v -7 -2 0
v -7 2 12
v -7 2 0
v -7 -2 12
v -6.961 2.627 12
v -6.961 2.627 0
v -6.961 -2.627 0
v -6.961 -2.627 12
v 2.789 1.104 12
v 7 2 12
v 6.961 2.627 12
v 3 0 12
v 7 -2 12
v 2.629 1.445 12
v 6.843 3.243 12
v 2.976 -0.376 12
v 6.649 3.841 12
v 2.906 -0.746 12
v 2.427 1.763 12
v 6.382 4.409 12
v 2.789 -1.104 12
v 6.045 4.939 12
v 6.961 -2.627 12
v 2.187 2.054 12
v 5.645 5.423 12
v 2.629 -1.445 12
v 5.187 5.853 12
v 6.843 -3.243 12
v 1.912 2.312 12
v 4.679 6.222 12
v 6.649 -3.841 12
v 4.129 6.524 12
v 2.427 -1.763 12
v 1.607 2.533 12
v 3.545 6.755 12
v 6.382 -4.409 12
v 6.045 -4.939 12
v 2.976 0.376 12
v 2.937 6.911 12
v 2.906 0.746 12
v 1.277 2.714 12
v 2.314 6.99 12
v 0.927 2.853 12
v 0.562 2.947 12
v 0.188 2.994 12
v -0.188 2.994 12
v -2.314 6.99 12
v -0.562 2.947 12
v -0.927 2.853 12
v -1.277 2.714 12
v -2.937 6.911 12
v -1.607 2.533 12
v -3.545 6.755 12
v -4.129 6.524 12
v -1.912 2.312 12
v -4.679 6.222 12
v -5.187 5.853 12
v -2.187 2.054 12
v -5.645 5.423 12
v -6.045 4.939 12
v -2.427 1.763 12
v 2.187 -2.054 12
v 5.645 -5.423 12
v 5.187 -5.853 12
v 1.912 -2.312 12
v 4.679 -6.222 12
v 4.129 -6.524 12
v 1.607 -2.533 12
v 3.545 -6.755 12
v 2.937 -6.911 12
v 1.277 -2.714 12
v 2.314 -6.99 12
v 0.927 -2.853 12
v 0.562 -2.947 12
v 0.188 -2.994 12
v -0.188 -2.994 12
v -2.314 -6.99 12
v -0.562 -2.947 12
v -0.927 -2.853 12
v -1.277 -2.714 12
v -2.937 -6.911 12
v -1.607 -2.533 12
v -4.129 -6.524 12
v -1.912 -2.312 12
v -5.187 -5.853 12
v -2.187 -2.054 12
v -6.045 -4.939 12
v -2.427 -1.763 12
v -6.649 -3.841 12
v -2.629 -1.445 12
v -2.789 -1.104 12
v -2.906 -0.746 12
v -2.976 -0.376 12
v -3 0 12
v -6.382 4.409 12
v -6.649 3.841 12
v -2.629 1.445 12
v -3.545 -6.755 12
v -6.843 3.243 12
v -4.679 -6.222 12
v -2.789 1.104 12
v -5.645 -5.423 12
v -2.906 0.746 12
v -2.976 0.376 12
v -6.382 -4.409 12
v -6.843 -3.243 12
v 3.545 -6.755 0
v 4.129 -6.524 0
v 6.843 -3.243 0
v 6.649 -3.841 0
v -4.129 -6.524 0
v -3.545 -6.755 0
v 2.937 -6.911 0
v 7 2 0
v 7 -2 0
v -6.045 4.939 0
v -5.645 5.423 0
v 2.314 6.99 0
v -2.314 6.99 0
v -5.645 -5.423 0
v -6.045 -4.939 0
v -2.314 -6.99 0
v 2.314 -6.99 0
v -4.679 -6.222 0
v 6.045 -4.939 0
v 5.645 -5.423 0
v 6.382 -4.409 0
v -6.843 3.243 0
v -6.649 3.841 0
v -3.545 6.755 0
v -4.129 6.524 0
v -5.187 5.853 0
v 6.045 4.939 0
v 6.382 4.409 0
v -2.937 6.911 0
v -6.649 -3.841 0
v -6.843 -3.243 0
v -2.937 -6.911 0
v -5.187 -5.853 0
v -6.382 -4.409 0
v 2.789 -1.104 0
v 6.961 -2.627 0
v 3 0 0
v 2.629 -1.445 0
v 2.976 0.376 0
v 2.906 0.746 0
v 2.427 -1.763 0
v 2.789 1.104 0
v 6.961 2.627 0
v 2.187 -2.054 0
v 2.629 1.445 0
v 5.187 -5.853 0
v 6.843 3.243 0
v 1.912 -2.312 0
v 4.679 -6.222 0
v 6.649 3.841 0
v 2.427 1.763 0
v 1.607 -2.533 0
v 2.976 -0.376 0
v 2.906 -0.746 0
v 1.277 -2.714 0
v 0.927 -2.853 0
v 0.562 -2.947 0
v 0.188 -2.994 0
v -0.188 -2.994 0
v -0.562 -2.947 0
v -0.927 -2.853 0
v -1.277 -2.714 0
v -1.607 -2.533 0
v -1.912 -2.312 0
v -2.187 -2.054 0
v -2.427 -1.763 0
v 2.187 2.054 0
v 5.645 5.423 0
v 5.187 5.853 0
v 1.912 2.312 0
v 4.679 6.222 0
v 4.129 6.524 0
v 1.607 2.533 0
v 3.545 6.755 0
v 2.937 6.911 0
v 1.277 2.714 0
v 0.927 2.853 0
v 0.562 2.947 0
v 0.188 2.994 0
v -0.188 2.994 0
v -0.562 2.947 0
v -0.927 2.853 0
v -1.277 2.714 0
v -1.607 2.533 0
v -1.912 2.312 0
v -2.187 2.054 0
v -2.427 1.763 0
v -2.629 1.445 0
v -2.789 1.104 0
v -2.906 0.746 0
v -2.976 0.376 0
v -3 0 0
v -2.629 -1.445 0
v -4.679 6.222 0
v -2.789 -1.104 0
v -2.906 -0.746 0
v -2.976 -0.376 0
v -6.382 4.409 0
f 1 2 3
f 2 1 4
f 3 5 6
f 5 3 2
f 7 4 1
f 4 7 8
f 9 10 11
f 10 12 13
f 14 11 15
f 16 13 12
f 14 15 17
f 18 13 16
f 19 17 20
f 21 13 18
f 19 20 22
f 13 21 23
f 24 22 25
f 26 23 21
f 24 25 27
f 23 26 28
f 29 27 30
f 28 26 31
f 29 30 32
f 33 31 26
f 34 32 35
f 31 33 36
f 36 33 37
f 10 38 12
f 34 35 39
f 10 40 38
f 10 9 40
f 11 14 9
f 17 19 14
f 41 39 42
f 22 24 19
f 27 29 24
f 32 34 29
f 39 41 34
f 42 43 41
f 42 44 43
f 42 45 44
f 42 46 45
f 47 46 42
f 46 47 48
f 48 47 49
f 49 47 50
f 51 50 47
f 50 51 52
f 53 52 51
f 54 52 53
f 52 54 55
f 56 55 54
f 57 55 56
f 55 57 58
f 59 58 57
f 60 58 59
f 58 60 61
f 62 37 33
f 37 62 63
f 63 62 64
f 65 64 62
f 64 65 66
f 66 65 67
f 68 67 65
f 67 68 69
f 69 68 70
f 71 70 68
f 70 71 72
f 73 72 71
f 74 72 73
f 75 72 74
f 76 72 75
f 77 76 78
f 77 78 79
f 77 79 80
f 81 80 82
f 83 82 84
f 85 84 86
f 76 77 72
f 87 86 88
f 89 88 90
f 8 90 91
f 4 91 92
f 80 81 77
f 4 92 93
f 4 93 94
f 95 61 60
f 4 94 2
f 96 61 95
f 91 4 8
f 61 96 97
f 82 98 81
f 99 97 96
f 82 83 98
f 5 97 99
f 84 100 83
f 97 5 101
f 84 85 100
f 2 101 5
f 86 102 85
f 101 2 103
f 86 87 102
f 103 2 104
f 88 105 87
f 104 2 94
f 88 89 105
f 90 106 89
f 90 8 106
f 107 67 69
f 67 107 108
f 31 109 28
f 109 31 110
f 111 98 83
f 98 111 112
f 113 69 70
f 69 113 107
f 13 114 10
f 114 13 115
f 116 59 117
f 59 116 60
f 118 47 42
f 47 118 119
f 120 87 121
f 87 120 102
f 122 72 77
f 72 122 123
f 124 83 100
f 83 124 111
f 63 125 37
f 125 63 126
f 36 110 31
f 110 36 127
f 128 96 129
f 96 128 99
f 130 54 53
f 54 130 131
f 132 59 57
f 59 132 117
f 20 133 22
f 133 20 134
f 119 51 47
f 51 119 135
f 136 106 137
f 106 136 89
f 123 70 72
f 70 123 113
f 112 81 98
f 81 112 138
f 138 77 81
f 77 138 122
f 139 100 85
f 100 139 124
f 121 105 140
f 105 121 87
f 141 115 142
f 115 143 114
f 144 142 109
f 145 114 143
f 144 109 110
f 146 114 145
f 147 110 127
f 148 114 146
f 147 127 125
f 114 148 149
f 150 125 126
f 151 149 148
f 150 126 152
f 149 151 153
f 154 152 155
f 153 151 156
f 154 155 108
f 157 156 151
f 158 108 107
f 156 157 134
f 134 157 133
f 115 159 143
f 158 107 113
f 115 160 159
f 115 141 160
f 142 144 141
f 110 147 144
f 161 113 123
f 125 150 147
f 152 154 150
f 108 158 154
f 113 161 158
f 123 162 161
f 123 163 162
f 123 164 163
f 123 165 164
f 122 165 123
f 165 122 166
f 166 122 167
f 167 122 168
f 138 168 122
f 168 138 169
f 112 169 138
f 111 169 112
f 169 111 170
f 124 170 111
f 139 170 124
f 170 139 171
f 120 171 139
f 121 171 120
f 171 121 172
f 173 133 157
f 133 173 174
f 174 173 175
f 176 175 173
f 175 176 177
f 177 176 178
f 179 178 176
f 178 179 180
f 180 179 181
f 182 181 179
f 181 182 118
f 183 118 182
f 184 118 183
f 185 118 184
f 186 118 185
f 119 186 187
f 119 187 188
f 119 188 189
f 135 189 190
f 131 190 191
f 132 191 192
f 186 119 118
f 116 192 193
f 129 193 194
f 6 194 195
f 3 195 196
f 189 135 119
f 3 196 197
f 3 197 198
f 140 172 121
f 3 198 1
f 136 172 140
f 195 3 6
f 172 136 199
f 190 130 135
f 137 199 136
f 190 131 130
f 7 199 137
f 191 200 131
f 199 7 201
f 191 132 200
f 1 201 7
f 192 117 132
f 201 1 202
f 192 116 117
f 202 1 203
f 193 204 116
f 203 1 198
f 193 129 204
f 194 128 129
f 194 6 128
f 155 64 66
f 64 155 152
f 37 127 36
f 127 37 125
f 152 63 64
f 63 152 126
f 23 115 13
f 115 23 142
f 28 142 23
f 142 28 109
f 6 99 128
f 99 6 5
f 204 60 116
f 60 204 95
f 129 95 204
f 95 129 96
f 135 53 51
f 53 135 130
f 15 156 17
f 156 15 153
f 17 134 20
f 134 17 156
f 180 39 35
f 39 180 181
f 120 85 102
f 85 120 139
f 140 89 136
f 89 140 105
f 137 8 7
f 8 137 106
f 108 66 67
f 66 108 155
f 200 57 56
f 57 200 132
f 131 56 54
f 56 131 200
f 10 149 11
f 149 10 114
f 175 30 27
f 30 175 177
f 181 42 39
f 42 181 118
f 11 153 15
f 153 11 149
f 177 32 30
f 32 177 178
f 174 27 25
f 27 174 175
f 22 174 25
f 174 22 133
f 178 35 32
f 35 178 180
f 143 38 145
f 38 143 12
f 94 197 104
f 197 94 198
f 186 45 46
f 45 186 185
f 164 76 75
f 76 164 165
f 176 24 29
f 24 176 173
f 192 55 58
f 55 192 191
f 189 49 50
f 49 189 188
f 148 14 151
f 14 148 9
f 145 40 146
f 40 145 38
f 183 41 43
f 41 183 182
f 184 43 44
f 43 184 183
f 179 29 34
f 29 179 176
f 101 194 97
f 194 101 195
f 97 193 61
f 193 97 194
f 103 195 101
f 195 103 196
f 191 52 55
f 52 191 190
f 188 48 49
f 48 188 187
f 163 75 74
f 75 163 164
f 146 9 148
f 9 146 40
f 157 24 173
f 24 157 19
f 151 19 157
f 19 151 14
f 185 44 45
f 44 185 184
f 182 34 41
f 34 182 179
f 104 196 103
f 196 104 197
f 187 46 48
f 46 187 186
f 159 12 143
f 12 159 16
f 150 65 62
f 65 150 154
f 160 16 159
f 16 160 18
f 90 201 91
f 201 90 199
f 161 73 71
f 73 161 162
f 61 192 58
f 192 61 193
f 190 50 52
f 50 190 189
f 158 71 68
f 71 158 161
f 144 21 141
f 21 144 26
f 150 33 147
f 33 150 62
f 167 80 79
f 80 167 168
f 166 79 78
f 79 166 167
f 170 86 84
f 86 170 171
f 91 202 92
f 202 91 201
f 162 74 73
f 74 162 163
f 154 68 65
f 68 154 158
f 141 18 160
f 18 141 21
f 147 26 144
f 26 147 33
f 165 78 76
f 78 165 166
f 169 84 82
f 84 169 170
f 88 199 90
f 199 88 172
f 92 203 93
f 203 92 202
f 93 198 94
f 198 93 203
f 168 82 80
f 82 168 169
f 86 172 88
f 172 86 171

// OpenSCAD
// Generated by SolidPython 1.1.3 on 2023-03-12 22:43:55
$fn = 50;


difference() {
	union() {
		translate(v = [0, 0, 0]) {
			rotate(a = [0, 0, 0]) {
				hull() {
					translate(v = [-2.0000000000, 2.0000000000, 0]) {
						rotate(a = [0, 0, 0]) {
							translate(v = [0, 0, 0]) {
								rotate(a = [0, 0, 0]) {
									cylinder(h = 12, r = 5);
								}
							}
						}
					}
					translate(v = [2.0000000000, 2.0000000000, 0]) {
						rotate(a = [0, 0, 0]) {
							translate(v = [0, 0, 0]) {
								rotate(a = [0, 0, 0]) {
									cylinder(h = 12, r = 5);
								}
							}
						}
					}
					translate(v = [-2.0000000000, -2.0000000000, 0]) {
						rotate(a = [0, 0, 0]) {
							translate(v = [0, 0, 0]) {
								rotate(a = [0, 0, 0]) {
									cylinder(h = 12, r = 5);
								}
							}
						}
					}
					translate(v = [2.0000000000, -2.0000000000, 0]) {
						rotate(a = [0, 0, 0]) {
							translate(v = [0, 0, 0]) {
								rotate(a = [0, 0, 0]) {
									cylinder(h = 12, r = 5);
								}
							}
						}
					}
				}
			}
		}
	}
	union() {
		translate(v = [0.0000000000, 0.0000000000, 0]) {
			rotate(a = [0, 0, 0]) {
				translate(v = [0, 0, -50]) {
					rotate(a = [0, 0, 0]) {
						cylinder(h = 100, r = 3.0000000000);
					}
				}
			}
		}
	}
}
/***********************************************
*********      SolidPython code:      **********
************************************************
 
from solid import *
import os
import subprocess

import oomB

import opsc_library_gen

mode = "laser"
#mode = "3d_print"

defined_objects = {}

radius_dict = {}
countersunk_dict = {}


def set_mode(m):
    global mode
    mode = m
    radius_dict['M6'] = 6.5/2
    radius_dict['M3'] = 3.3/2
    if mode == "laser":
        radius_dict['M6'] = 6/2
        radius_dict['M3'] = 3/2

    countersunk_dict['M3'] = {}
    countersunk_dict['M3']['little_rad'] = radius_dict['M3']
    countersunk_dict['M3']['big_rad'] = (5.5+0.6)/2
    if mode == "laser":
        countersunk_dict['M3']['big_rad'] = (4.75+0.6)/2
        countersunk_dict['M3']['little_rad'] = (4.75+0.6)/2

    countersunk_dict['M3']['height'] = 1.7


def opsc_make_object(filename, objects, save_type="none",resolution=50, layers = 1, tilediff = 200, mode="laser", overwrite=True):
    if overwrite or not os.path.exists(filename):
        set_mode(mode)
        save_type = save_type.lower()
        os.makedirs(os.path.dirname(filename), exist_ok=True)
        final_object = opsc_get_object(objects, mode = mode)
        # Save the final object to the specified filename    
        scad_render_to_file(final_object, filename, file_header='$fn = %s;' % resolution, include_orig_code=True)
        if mode == "laser":
            filename_laser = filename.replace(".scad","-flat.scad")
            scad_render_to_file(getLaser(final_object, layers=layers, tilediff=tilediff), filename_laser, file_header='$fn = %s;' % resolution, include_orig_code=True)
            if save_type == "all":
                saveToAll(filename_laser)
            elif save_type == "dxf":
                saveToDxf(filename_laser)
        if save_type == "all":
            saveToAll(filename)
        elif save_type == "dxf":
            saveToDxf(filename)


def opsc_get_object(objects, mode = "laser"):
    # Create the solidpython objects only include the positive objects and if they don't have inclusion or their inclusion is either all or mode
    # Initialize an empty list to store the results
    positive_objects = []

    # Iterate over the "objects" list
    for obj in objects:
        # Check if the current object has a "type" key with a value of "positive"
        if obj['type'] == 'positive':
            # Check if the current object has an "inclusion" key and its value matches "mode",
            # or if the current object does not have an "inclusion" key at all
            if not 'inclusion' in obj or obj['inclusion'] == "all" or obj['inclusion'] == mode:
                # Call the "get_opsc_item" function with the current object as an argument
                opsc_item = get_opsc_item(obj)
                # Add the result to the "positive_objects" list
                positive_objects.append(opsc_item)
# Initialize an empty list to store the results
    negative_objects = []

    # Iterate over the "objects" list
    for obj in objects:
        # Check if the current object has a "type" key with a value of "negative"
        if obj['type'] == 'negative':
            # Check if the current object has an "inclusion" key and its value matches "mode",
            # or if the current object does not have an "inclusion" key at all
            if not 'inclusion' in obj or obj['inclusion'] == "all" or obj['inclusion'] == mode:
                # Call the "get_opsc_item" function with the current object as an argument
                opsc_item = get_opsc_item(obj)
                # Add the result to the "negative_objects" list
                negative_objects.append(opsc_item)
    
    #positive_objects = [get_opsc_item(obj) for obj in objects if obj['type'] == 'positive']
    #negative_objects = [get_opsc_item(obj) for obj in objects if obj['type'] == 'negative']
    # Union the positive objects
    positive_object = union()(*positive_objects)
    # Union the negative objects
    negative_object = union()(*negative_objects)
    # Create the final object by subtracting the negative objects from the positive objects
    return difference()(positive_object, negative_object)

def get_opsc_item(params):
    # A dictionary to map radius string values to numerical values
    #radius_dict = {'small': 5, 'medium': 10, 'large': 15}
    # An array of function names for basic shapes
    basic_shapes = ['cube', 'sphere', 'cylinder']
    
    # An array of function names for other shapes
    other_shapes = ['hole', 'slot', 'rounded_rectangle', 'countersunk']
    


    # Convert radius to r if present, and remove radius from the params dictionary
    if 'radius' in params:
        if isinstance(params['radius'], str):
            # Use the radius_dict to map the radius string value to a numerical value
            params['r'] = radius_dict[params['radius']]
        else:
            params['r'] = params['radius']
        del params['radius']
    

    # Check if the object type is a basic shape
    if params['shape'] in basic_shapes:
        # Remove shape and unexpected dictionary values
        allowed_keys = {'size', 'r', 'r1', 'r2', 'd', 'h', 'rw', 'rh', 'dw', 'dh'}
        shape_params = {k: v for k, v in params.items() if k in allowed_keys}

        # Call the corresponding function for the shape parameter, using ** notation to pass the shape_params dictionary as keyword arguments
        return get_opsc_transform(params,globals()[params['shape']](**shape_params))
    
    # If the object type is not a basic shape, check if it's a defined object or one of the other shapes
    elif params['shape'] in other_shapes:
        # Call the corresponding function for the shape parameter, passing the params dictionary as an argument
        p2 = copy.deepcopy(params)
        p2["pos"] = [0,0,0]
        return get_opsc_transform(params,globals()[params['shape']](p2))
    
    # If the object is not a basic shape or a defined object, try to import it from a .scad file
    else:
        obj = defined_objects[params['shape']]
        return get_opsc_transform(params,obj)

def get_opsc_transform(params, solid_obj):
    # Rotate the object based on the 'rot' field in the params dictionary, or the 'rotX', 'rotY', and 'rotZ' fields if 'rot' is not present
    rot = params.get('rot', [])
    if rot:
        rotX, rotY, rotZ = rot
    else:
        rotX = params.get('rotX', 0)
        rotY = params.get('rotY', 0)
        rotZ = params.get('rotZ', 0)
    solid_obj = rotate([rotX, rotY, rotZ])(solid_obj)

    # Translate the object based on the 'pos' field in the params dictionary, or the 'x', 'y', and 'z' fields if 'pos' is not present
    pos = params.get('pos', [])
    if pos:
        x, y, z = pos
    else:
        x = params.get('x', 0)
        y = params.get('y', 0)
        z = params.get('z', 0)
    solid_obj = translate([x, y, z])(solid_obj)
    return solid_obj


import random

def opsc_easy_array(type, shape, repeats, pos_start, shift_arr, **kwargs):
    for i in range(0,3):
        repeats.append(1)
        pos_start.append(0)
        shift_arr.append(0)
    return_objects = []

    for x in range(0,repeats[0]):
        for y in range(0,repeats[1]):
            for z in range(0,repeats[2]):
                return_objects.append(opsc_easy(type, shape, pos=[pos_start[0]+x*shift_arr[0],pos_start[1]+y*shift_arr[1],pos_start[2]+z*shift_arr[2]], **kwargs))
    return return_objects                



def opsc_easy(type, shape, **kwargs):
    obj = {
        'type': type,
        'shape': shape
    }
    for param in ['size', 'r', 'r1', 'r2', 'd', 'h', 'rw', 'rh', 'dw', 'dh', 'pos', 'x', 'y', 'z', 'rot', 'rotX', 'rotY', 'rotZ', "w", "inclusion"]:
        if param in kwargs:
            obj[param] = kwargs[param]
    return obj

def hole(params):
    p2 = copy.deepcopy(params)  
    # Check if the radius is a string and replace it with the corresponding value from the dictionary
    if isinstance(p2['r'], str):
        p2['r'] = radius_dict[p2['r']]
    
    # Set the height to 100 if not specified
    if 'h' not in p2:
        p2['h'] = 100
        p2["pos"] = [0,0,-50]
    p2["center"] = True
    # Create the cylinder object
    p2["shape"] = "cylinder"
    p2["type"] = "positive"

    return get_opsc_item(p2)

import copy

def countersunk(params):
    p2 = copy.deepcopy(params)
    counter_rad = p2['r']
    p2['r'] = radius_dict[p2['r']]
    hp = copy.deepcopy(p2)
    hp["type"] = "positive"
    hp["shape"] = "hole"
    del hp["rot"]
    hol = get_opsc_item(hp)
    
    cp = copy.deepcopy(p2)
    cp["h"] = countersunk_dict[counter_rad]["height"]
    cp["r2"] = countersunk_dict[counter_rad]["little_rad"]
    cp["r1"] = countersunk_dict[counter_rad]["big_rad"]
    del cp["r"]
    del cp["rot"]
    cp["type"] = "positive"
    cp["shape"] = "cylinder"
    cp["pos"] = [0,0,0]

    top = get_opsc_item(cp)
    return union()(hol,top)



def slot(params):  
    p2 = copy.deepcopy(params) 
    if isinstance(p2['r'], str):
        p2['r'] = radius_dict[p2['r']]
    p2["type"] = "positive"
    p2["shape"] = "hole"
    del p2["rot"]
    p2["pos"] = [0,0,0]
    left = copy.deepcopy(p2)
    right = copy.deepcopy(p2)
    left["pos"][0] = p2["w"] / 2 - p2["r"] 
    
    right["pos"][0] = -p2["w"] / 2 + p2["r"] 
    pass
    leftObj = get_opsc_item(left)
    rightObj = get_opsc_item(right)
    return hull()(leftObj, rightObj)

def rounded_rectangle(params):   
    p2 = copy.deepcopy(params) 
    p2["h"] = p2["size"][2]
    p2["pos"] = p2.get("pos", [0, 0, 0]) 
    p2["type"] = "positive"
    p2["shape"] = "hole"
    p2["pos"] = [0,0,0]
    
    if 'rot' in p2:
        del p2["rot"]   
    if 'r' not in p2:
        p2["r"] = 5 
    tl = copy.deepcopy(p2)
    tr = copy.deepcopy(p2)
    bl = copy.deepcopy(p2)
    br = copy.deepcopy(p2)
    tl["pos"][0] = -(p2["size"][0] - p2["r"]*2)/2
    tl["pos"][1] = (p2["size"][1] - p2["r"]*2)/2
    tr["pos"][0] = (p2["size"][0] - p2["r"]*2)/2
    tr["pos"][1] = (p2["size"][1] - p2["r"]*2)/2
    bl["pos"][0] = -(p2["size"][0] - p2["r"]*2)/2
    bl["pos"][1] = -(p2["size"][1] - p2["r"]*2)/2
    br["pos"][0] = (p2["size"][0] - p2["r"]*2)/2
    br["pos"][1] = -(p2["size"][1] - p2["r"]*2)/2
    del tl["size"]
    del tr["size"]
    del bl["size"]
    del br["size"]
    tlo = get_opsc_item(tl)
    tro = get_opsc_item(tr)
    blo = get_opsc_item(bl)
    bro = get_opsc_item(br)    
    return hull()(tlo, tro, blo, bro)



def import_scad_object(filename):
    # Import the .scad file and convert it to a solidpython object
    #filename = "parts"
    obj = import_scad(filename)
    return obj.main()
    


import os
import solid as solidpython

# A dictionary to store the defined objects


def load_scad_objects():
    opsc_library_gen.gen_library(defined_objects)

import random

def test(num_objects):
    objects = []
    for i in range(num_objects):
        # Choose a random shape
        #shape = random.choice(['cube', 'sphere', 'cylinder', 'hole', 'slot', "rounded_rectangle"])
        shape = random.choice(["rounded_rectangle"])

        # Choose a random type
        type = random.choice(['positive', 'negative'])
        
        # Create an empty object dictionary
        obj = {'shape': shape, 'type': type}
        
        # Set shape-specific parameters
        if obj['shape'] in ['cube']:
            obj['size'] =  [random.uniform(5, 15), random.uniform(5, 15), random.uniform(5, 15)]
        if obj['shape'] in ['rounded_rectangle']:
            obj['size'] =  [random.uniform(5, 15), random.uniform(5, 15), random.uniform(5, 15)]
            obj['r'] = random.uniform(0.5, 5)
        elif obj['shape'] == 'sphere':
            obj['r'] = random.uniform(5, 15)
        elif obj['shape'] in ['cylinder', 'hole']:
            obj['r'] = random.uniform(0.5, 5)
            obj['h'] = random.uniform(5, 15)
        elif obj['shape'] == 'slot':
            obj['r'] = random.uniform(0.5, 5)
            obj['h'] = random.uniform(5, 15)
            obj['w'] = random.uniform(5, 15)
        
        # Set a random position and rotation
        obj['pos'] = [random.uniform(-20, 20), random.uniform(-20, 20), random.uniform(-20, 20)]
        obj['rot'] = [random.uniform(-180, 180), random.uniform(-180, 180), random.uniform(-180, 180)]
        
        # Add the object to the list
        objects.append(obj)
    return objects

####### old file saving
def saveToAll(fileIn):
    saveToDxf(fileIn)
    saveToPng(fileIn)
    saveToStl(fileIn)
    saveToSvg(fileIn)

def saveToDxf(fileIn, fileOut="", copy_to_laser=True):
    if fileOut == "":
        fileOut = fileIn.replace(".scad",".dxf")
    saveToFile(fileIn, fileOut)


    
def saveToPng(fileIn, fileOut="",extra="--render"):
    if fileOut == "":
        fileOut = fileIn.replace(".scad",".png")
    saveToFile(fileIn, fileOut)

def saveToStl(fileIn, fileOut=""):
    if fileOut == "":
        fileOut = fileIn.replace(".scad",".stl")
    saveToFile(fileIn, fileOut)
    
def saveToSvg(fileIn, fileOut=""):
    if fileOut == "":
        fileOut = fileIn.replace(".scad",".svg")
    saveToFile(fileIn, fileOut)

def saveToFile(fileIn, fileOut,extra=""):
    #extra = extra + " --colorscheme Tomorrow"

    launchStr = 'openscad -o "' + fileOut + '"' + extra + ' "' + fileIn + '"'
    if ".png" in fileOut:
        launchStr = launchStr + " --render"
    print("            saveToFile launch string: " + launchStr)
    subprocess.run(launchStr)
    x=0

def getLaser(final_object,start=1.5,layers=1,thickness=3,tilediff=200):
        rv= []

        for x in range(layers):
            rv.append(translate([0,x*tilediff,0])(
                    projection()(
                        intersection()(translate([-500,-500,start+x*thickness])(cube(size=[1000,1000,0.1])),
                            final_object
                        )
                    )
            )
            )
            
        return union()(rv)

set_mode("laser")
load_scad_objects() 
 
************************************************/
